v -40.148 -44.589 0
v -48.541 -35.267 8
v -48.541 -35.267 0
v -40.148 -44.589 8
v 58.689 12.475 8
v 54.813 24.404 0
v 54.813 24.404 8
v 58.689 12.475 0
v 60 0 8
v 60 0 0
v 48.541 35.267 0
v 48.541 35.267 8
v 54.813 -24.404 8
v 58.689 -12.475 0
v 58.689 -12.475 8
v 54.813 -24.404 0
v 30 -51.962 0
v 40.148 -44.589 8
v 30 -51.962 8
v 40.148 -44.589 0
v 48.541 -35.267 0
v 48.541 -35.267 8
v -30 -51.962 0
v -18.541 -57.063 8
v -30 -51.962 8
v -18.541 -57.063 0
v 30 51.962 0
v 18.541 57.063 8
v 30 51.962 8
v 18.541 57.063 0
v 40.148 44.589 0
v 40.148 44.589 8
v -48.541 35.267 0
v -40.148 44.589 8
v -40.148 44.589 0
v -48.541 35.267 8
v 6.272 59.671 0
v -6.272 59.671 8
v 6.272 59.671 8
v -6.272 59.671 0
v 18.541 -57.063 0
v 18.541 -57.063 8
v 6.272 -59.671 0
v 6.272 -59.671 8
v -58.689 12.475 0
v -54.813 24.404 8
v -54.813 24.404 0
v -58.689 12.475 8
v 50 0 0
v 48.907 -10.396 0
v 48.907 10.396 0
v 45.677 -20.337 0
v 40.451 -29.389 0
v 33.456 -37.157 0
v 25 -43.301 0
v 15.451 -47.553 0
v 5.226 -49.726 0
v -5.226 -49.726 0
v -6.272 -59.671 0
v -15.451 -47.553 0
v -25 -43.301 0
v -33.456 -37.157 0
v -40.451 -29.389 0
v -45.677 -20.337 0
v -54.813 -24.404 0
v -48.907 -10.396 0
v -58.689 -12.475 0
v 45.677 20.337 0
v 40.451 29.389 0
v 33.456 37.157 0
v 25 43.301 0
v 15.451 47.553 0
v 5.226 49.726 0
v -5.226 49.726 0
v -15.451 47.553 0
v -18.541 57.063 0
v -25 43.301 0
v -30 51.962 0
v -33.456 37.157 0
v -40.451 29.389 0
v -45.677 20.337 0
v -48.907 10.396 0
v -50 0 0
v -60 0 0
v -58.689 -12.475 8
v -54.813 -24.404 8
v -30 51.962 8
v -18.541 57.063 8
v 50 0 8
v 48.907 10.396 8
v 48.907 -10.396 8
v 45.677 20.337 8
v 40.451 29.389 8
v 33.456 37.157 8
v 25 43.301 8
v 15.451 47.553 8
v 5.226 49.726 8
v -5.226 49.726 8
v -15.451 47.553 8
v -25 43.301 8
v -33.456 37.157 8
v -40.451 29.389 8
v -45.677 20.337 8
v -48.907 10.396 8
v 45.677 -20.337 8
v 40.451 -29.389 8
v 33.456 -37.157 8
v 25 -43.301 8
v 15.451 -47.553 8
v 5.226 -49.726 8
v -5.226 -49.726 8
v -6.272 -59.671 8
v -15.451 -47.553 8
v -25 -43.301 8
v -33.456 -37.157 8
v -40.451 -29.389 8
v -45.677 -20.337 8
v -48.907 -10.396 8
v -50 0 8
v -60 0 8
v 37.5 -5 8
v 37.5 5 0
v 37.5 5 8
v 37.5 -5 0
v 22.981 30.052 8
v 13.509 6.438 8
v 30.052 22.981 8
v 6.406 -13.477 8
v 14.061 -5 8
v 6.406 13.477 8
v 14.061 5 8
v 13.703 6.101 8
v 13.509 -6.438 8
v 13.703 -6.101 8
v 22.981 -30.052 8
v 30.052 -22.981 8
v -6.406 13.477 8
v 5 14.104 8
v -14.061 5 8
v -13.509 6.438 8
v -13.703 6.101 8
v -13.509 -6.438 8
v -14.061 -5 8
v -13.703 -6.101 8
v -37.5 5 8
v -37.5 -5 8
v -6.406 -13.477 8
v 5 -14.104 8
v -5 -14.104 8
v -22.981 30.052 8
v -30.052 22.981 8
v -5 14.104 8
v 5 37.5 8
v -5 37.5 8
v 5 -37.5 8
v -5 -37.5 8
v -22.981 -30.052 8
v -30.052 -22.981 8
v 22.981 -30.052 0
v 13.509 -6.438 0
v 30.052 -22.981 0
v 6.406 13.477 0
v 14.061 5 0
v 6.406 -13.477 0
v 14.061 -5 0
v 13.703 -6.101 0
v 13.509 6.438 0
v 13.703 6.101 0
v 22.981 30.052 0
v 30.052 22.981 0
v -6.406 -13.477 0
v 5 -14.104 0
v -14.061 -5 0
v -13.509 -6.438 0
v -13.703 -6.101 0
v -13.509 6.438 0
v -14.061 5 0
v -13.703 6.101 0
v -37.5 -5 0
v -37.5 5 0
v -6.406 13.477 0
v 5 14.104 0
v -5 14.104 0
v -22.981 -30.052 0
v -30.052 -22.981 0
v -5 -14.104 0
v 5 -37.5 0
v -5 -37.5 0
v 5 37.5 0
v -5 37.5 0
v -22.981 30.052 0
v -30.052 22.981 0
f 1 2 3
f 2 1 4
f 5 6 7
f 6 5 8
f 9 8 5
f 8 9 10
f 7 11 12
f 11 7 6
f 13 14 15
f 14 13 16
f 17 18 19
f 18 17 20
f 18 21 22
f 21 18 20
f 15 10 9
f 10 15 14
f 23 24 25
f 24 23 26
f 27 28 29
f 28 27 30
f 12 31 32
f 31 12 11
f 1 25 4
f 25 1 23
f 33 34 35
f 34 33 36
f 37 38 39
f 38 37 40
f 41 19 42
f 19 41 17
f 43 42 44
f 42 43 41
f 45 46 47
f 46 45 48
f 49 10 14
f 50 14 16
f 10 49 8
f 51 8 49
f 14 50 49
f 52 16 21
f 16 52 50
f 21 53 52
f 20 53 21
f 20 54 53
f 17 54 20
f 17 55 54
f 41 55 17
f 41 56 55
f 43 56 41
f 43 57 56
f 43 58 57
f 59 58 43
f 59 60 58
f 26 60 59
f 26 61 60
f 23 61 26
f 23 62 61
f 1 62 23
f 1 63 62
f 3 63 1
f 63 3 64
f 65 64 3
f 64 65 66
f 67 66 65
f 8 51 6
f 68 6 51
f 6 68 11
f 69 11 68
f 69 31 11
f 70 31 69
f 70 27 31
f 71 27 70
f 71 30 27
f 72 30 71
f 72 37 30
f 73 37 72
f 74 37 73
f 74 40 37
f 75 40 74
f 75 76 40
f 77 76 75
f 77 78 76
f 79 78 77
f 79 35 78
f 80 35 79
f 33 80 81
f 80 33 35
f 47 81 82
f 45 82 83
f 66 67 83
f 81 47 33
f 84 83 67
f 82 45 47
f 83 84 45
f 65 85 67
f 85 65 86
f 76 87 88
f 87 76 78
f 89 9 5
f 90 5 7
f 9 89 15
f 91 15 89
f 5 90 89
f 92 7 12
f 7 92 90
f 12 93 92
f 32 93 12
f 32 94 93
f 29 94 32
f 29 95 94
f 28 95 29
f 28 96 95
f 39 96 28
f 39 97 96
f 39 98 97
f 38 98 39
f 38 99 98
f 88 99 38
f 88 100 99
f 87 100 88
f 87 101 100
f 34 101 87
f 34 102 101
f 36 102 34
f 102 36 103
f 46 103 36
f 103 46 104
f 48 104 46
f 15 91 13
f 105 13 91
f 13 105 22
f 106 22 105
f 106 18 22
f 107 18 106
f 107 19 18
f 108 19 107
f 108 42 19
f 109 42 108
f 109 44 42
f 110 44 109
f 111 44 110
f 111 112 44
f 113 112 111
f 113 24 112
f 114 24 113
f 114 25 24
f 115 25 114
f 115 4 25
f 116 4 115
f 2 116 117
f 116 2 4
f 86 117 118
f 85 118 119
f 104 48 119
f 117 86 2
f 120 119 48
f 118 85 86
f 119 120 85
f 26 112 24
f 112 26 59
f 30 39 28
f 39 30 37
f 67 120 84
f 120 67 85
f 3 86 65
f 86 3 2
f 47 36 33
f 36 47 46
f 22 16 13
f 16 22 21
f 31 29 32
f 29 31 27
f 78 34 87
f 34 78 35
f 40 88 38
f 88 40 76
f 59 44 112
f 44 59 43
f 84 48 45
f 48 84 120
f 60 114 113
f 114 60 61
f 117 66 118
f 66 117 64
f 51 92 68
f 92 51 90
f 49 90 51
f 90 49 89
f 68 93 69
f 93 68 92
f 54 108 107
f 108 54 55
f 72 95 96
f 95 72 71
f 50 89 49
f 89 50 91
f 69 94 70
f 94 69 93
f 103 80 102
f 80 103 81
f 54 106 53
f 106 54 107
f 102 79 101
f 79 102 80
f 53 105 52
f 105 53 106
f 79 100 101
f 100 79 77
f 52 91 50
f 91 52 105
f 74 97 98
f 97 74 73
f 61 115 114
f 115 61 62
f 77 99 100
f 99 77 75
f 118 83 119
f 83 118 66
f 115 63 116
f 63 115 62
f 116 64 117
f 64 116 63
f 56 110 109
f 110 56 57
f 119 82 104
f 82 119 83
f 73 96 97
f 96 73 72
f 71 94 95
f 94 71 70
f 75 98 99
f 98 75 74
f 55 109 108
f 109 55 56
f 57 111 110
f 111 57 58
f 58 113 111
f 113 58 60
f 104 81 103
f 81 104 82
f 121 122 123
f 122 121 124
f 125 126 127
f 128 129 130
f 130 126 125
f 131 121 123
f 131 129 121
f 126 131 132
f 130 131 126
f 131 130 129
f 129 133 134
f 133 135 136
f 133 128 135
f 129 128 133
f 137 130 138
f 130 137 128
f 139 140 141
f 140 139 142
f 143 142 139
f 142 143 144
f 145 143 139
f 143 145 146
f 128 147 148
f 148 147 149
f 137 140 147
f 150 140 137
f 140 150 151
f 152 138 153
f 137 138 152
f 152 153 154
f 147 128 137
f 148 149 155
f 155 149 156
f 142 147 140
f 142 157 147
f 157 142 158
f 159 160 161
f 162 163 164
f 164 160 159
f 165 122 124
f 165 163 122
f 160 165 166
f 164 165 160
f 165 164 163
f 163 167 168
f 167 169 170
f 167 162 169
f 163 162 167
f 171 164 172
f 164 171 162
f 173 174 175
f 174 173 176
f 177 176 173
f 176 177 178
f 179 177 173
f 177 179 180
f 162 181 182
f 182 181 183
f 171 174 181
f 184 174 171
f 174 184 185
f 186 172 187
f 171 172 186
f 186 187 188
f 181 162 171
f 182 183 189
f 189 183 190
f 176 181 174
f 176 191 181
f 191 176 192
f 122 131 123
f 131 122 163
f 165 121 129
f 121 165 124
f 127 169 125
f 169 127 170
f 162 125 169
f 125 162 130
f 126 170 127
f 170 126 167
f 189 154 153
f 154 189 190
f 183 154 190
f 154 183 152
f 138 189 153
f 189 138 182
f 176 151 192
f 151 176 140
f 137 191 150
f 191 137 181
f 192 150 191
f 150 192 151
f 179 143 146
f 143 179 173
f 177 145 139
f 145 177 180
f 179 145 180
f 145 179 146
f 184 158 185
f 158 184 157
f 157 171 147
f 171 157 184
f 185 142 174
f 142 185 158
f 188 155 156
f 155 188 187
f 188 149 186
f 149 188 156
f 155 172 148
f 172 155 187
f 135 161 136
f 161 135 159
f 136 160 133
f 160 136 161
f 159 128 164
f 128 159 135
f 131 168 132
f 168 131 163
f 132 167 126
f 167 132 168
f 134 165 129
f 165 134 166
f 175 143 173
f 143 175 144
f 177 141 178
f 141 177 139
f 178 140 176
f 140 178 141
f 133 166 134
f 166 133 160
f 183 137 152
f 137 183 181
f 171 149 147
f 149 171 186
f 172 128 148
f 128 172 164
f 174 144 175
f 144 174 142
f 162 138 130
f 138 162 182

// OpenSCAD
/* doodle-meta {"version":1,"parameters":{"outer_diameter":{"label":"Outer Diameter","description":"Diameter of the wheel rim","unit":"mm","feature":"outer_rim"},"thickness":{"label":"Thickness","description":"Height of the wheel disc (Z-axis)","unit":"mm","feature":"body_thickness"},"hub_diameter":{"label":"Hub Diameter","description":"Diameter of the central hub","unit":"mm","feature":"central_hub"},"spoke_width":{"label":"Spoke Width","description":"Width of each radial spoke","unit":"mm","feature":"spokes"},"spoke_count":{"label":"Spoke Count","description":"Number of spokes","unit":"count","feature":"spokes"}},"features":{"outer_rim":{"kind":"dimension","axis":"x","label":"Outer Diameter"},"body_thickness":{"kind":"dimension","axis":"z","label":"Thickness"},"central_hub":{"kind":"dimension","axis":"x","label":"Hub Diameter"},"spokes":{"kind":"region","label":"Spokes","min":[0,0,0],"max":[120,120,8]}}} */

// Parameters
outer_diameter = 120.0;
thickness = 8.0;
hub_diameter = 30.0;
spoke_width = 10.0;
spoke_count = 8;

// Derived values
outer_radius = outer_diameter / 2;
hub_radius = hub_diameter / 2;
spoke_length = outer_radius - hub_radius;

// Main module
module wheel_disc() {
    difference() {
        union() {
            // Outer Rim
            difference() {
                cylinder(h = thickness, r = outer_radius, center = true);
                cylinder(h = thickness + 2, r = outer_radius - 10, center = true); // Rim thickness 10mm
            }
            
            // Central Hub
            cylinder(h = thickness, r = hub_radius, center = true);
            
            // Spokes
            for (i = [0 : spoke_count - 1]) {
                rotate([0, 0, i * (360 / spoke_count)]) {
                    translate([hub_radius, 0, 0]) {
                        cube([spoke_length, spoke_width, thickness], center = true);
                    }
                }
            }
        }
        
        // Optional: Center hole for axle (not explicitly requested but common, keeping solid as per "central solid disk")
        // If a hole was needed, it would be subtracted here. 
        // The spec says "central solid disk", so we leave it solid.
    }
}

// Position on build plate (Z=0 to Z=thickness)
translate([0, 0, thickness / 2]) {
    wheel_disc();
}
